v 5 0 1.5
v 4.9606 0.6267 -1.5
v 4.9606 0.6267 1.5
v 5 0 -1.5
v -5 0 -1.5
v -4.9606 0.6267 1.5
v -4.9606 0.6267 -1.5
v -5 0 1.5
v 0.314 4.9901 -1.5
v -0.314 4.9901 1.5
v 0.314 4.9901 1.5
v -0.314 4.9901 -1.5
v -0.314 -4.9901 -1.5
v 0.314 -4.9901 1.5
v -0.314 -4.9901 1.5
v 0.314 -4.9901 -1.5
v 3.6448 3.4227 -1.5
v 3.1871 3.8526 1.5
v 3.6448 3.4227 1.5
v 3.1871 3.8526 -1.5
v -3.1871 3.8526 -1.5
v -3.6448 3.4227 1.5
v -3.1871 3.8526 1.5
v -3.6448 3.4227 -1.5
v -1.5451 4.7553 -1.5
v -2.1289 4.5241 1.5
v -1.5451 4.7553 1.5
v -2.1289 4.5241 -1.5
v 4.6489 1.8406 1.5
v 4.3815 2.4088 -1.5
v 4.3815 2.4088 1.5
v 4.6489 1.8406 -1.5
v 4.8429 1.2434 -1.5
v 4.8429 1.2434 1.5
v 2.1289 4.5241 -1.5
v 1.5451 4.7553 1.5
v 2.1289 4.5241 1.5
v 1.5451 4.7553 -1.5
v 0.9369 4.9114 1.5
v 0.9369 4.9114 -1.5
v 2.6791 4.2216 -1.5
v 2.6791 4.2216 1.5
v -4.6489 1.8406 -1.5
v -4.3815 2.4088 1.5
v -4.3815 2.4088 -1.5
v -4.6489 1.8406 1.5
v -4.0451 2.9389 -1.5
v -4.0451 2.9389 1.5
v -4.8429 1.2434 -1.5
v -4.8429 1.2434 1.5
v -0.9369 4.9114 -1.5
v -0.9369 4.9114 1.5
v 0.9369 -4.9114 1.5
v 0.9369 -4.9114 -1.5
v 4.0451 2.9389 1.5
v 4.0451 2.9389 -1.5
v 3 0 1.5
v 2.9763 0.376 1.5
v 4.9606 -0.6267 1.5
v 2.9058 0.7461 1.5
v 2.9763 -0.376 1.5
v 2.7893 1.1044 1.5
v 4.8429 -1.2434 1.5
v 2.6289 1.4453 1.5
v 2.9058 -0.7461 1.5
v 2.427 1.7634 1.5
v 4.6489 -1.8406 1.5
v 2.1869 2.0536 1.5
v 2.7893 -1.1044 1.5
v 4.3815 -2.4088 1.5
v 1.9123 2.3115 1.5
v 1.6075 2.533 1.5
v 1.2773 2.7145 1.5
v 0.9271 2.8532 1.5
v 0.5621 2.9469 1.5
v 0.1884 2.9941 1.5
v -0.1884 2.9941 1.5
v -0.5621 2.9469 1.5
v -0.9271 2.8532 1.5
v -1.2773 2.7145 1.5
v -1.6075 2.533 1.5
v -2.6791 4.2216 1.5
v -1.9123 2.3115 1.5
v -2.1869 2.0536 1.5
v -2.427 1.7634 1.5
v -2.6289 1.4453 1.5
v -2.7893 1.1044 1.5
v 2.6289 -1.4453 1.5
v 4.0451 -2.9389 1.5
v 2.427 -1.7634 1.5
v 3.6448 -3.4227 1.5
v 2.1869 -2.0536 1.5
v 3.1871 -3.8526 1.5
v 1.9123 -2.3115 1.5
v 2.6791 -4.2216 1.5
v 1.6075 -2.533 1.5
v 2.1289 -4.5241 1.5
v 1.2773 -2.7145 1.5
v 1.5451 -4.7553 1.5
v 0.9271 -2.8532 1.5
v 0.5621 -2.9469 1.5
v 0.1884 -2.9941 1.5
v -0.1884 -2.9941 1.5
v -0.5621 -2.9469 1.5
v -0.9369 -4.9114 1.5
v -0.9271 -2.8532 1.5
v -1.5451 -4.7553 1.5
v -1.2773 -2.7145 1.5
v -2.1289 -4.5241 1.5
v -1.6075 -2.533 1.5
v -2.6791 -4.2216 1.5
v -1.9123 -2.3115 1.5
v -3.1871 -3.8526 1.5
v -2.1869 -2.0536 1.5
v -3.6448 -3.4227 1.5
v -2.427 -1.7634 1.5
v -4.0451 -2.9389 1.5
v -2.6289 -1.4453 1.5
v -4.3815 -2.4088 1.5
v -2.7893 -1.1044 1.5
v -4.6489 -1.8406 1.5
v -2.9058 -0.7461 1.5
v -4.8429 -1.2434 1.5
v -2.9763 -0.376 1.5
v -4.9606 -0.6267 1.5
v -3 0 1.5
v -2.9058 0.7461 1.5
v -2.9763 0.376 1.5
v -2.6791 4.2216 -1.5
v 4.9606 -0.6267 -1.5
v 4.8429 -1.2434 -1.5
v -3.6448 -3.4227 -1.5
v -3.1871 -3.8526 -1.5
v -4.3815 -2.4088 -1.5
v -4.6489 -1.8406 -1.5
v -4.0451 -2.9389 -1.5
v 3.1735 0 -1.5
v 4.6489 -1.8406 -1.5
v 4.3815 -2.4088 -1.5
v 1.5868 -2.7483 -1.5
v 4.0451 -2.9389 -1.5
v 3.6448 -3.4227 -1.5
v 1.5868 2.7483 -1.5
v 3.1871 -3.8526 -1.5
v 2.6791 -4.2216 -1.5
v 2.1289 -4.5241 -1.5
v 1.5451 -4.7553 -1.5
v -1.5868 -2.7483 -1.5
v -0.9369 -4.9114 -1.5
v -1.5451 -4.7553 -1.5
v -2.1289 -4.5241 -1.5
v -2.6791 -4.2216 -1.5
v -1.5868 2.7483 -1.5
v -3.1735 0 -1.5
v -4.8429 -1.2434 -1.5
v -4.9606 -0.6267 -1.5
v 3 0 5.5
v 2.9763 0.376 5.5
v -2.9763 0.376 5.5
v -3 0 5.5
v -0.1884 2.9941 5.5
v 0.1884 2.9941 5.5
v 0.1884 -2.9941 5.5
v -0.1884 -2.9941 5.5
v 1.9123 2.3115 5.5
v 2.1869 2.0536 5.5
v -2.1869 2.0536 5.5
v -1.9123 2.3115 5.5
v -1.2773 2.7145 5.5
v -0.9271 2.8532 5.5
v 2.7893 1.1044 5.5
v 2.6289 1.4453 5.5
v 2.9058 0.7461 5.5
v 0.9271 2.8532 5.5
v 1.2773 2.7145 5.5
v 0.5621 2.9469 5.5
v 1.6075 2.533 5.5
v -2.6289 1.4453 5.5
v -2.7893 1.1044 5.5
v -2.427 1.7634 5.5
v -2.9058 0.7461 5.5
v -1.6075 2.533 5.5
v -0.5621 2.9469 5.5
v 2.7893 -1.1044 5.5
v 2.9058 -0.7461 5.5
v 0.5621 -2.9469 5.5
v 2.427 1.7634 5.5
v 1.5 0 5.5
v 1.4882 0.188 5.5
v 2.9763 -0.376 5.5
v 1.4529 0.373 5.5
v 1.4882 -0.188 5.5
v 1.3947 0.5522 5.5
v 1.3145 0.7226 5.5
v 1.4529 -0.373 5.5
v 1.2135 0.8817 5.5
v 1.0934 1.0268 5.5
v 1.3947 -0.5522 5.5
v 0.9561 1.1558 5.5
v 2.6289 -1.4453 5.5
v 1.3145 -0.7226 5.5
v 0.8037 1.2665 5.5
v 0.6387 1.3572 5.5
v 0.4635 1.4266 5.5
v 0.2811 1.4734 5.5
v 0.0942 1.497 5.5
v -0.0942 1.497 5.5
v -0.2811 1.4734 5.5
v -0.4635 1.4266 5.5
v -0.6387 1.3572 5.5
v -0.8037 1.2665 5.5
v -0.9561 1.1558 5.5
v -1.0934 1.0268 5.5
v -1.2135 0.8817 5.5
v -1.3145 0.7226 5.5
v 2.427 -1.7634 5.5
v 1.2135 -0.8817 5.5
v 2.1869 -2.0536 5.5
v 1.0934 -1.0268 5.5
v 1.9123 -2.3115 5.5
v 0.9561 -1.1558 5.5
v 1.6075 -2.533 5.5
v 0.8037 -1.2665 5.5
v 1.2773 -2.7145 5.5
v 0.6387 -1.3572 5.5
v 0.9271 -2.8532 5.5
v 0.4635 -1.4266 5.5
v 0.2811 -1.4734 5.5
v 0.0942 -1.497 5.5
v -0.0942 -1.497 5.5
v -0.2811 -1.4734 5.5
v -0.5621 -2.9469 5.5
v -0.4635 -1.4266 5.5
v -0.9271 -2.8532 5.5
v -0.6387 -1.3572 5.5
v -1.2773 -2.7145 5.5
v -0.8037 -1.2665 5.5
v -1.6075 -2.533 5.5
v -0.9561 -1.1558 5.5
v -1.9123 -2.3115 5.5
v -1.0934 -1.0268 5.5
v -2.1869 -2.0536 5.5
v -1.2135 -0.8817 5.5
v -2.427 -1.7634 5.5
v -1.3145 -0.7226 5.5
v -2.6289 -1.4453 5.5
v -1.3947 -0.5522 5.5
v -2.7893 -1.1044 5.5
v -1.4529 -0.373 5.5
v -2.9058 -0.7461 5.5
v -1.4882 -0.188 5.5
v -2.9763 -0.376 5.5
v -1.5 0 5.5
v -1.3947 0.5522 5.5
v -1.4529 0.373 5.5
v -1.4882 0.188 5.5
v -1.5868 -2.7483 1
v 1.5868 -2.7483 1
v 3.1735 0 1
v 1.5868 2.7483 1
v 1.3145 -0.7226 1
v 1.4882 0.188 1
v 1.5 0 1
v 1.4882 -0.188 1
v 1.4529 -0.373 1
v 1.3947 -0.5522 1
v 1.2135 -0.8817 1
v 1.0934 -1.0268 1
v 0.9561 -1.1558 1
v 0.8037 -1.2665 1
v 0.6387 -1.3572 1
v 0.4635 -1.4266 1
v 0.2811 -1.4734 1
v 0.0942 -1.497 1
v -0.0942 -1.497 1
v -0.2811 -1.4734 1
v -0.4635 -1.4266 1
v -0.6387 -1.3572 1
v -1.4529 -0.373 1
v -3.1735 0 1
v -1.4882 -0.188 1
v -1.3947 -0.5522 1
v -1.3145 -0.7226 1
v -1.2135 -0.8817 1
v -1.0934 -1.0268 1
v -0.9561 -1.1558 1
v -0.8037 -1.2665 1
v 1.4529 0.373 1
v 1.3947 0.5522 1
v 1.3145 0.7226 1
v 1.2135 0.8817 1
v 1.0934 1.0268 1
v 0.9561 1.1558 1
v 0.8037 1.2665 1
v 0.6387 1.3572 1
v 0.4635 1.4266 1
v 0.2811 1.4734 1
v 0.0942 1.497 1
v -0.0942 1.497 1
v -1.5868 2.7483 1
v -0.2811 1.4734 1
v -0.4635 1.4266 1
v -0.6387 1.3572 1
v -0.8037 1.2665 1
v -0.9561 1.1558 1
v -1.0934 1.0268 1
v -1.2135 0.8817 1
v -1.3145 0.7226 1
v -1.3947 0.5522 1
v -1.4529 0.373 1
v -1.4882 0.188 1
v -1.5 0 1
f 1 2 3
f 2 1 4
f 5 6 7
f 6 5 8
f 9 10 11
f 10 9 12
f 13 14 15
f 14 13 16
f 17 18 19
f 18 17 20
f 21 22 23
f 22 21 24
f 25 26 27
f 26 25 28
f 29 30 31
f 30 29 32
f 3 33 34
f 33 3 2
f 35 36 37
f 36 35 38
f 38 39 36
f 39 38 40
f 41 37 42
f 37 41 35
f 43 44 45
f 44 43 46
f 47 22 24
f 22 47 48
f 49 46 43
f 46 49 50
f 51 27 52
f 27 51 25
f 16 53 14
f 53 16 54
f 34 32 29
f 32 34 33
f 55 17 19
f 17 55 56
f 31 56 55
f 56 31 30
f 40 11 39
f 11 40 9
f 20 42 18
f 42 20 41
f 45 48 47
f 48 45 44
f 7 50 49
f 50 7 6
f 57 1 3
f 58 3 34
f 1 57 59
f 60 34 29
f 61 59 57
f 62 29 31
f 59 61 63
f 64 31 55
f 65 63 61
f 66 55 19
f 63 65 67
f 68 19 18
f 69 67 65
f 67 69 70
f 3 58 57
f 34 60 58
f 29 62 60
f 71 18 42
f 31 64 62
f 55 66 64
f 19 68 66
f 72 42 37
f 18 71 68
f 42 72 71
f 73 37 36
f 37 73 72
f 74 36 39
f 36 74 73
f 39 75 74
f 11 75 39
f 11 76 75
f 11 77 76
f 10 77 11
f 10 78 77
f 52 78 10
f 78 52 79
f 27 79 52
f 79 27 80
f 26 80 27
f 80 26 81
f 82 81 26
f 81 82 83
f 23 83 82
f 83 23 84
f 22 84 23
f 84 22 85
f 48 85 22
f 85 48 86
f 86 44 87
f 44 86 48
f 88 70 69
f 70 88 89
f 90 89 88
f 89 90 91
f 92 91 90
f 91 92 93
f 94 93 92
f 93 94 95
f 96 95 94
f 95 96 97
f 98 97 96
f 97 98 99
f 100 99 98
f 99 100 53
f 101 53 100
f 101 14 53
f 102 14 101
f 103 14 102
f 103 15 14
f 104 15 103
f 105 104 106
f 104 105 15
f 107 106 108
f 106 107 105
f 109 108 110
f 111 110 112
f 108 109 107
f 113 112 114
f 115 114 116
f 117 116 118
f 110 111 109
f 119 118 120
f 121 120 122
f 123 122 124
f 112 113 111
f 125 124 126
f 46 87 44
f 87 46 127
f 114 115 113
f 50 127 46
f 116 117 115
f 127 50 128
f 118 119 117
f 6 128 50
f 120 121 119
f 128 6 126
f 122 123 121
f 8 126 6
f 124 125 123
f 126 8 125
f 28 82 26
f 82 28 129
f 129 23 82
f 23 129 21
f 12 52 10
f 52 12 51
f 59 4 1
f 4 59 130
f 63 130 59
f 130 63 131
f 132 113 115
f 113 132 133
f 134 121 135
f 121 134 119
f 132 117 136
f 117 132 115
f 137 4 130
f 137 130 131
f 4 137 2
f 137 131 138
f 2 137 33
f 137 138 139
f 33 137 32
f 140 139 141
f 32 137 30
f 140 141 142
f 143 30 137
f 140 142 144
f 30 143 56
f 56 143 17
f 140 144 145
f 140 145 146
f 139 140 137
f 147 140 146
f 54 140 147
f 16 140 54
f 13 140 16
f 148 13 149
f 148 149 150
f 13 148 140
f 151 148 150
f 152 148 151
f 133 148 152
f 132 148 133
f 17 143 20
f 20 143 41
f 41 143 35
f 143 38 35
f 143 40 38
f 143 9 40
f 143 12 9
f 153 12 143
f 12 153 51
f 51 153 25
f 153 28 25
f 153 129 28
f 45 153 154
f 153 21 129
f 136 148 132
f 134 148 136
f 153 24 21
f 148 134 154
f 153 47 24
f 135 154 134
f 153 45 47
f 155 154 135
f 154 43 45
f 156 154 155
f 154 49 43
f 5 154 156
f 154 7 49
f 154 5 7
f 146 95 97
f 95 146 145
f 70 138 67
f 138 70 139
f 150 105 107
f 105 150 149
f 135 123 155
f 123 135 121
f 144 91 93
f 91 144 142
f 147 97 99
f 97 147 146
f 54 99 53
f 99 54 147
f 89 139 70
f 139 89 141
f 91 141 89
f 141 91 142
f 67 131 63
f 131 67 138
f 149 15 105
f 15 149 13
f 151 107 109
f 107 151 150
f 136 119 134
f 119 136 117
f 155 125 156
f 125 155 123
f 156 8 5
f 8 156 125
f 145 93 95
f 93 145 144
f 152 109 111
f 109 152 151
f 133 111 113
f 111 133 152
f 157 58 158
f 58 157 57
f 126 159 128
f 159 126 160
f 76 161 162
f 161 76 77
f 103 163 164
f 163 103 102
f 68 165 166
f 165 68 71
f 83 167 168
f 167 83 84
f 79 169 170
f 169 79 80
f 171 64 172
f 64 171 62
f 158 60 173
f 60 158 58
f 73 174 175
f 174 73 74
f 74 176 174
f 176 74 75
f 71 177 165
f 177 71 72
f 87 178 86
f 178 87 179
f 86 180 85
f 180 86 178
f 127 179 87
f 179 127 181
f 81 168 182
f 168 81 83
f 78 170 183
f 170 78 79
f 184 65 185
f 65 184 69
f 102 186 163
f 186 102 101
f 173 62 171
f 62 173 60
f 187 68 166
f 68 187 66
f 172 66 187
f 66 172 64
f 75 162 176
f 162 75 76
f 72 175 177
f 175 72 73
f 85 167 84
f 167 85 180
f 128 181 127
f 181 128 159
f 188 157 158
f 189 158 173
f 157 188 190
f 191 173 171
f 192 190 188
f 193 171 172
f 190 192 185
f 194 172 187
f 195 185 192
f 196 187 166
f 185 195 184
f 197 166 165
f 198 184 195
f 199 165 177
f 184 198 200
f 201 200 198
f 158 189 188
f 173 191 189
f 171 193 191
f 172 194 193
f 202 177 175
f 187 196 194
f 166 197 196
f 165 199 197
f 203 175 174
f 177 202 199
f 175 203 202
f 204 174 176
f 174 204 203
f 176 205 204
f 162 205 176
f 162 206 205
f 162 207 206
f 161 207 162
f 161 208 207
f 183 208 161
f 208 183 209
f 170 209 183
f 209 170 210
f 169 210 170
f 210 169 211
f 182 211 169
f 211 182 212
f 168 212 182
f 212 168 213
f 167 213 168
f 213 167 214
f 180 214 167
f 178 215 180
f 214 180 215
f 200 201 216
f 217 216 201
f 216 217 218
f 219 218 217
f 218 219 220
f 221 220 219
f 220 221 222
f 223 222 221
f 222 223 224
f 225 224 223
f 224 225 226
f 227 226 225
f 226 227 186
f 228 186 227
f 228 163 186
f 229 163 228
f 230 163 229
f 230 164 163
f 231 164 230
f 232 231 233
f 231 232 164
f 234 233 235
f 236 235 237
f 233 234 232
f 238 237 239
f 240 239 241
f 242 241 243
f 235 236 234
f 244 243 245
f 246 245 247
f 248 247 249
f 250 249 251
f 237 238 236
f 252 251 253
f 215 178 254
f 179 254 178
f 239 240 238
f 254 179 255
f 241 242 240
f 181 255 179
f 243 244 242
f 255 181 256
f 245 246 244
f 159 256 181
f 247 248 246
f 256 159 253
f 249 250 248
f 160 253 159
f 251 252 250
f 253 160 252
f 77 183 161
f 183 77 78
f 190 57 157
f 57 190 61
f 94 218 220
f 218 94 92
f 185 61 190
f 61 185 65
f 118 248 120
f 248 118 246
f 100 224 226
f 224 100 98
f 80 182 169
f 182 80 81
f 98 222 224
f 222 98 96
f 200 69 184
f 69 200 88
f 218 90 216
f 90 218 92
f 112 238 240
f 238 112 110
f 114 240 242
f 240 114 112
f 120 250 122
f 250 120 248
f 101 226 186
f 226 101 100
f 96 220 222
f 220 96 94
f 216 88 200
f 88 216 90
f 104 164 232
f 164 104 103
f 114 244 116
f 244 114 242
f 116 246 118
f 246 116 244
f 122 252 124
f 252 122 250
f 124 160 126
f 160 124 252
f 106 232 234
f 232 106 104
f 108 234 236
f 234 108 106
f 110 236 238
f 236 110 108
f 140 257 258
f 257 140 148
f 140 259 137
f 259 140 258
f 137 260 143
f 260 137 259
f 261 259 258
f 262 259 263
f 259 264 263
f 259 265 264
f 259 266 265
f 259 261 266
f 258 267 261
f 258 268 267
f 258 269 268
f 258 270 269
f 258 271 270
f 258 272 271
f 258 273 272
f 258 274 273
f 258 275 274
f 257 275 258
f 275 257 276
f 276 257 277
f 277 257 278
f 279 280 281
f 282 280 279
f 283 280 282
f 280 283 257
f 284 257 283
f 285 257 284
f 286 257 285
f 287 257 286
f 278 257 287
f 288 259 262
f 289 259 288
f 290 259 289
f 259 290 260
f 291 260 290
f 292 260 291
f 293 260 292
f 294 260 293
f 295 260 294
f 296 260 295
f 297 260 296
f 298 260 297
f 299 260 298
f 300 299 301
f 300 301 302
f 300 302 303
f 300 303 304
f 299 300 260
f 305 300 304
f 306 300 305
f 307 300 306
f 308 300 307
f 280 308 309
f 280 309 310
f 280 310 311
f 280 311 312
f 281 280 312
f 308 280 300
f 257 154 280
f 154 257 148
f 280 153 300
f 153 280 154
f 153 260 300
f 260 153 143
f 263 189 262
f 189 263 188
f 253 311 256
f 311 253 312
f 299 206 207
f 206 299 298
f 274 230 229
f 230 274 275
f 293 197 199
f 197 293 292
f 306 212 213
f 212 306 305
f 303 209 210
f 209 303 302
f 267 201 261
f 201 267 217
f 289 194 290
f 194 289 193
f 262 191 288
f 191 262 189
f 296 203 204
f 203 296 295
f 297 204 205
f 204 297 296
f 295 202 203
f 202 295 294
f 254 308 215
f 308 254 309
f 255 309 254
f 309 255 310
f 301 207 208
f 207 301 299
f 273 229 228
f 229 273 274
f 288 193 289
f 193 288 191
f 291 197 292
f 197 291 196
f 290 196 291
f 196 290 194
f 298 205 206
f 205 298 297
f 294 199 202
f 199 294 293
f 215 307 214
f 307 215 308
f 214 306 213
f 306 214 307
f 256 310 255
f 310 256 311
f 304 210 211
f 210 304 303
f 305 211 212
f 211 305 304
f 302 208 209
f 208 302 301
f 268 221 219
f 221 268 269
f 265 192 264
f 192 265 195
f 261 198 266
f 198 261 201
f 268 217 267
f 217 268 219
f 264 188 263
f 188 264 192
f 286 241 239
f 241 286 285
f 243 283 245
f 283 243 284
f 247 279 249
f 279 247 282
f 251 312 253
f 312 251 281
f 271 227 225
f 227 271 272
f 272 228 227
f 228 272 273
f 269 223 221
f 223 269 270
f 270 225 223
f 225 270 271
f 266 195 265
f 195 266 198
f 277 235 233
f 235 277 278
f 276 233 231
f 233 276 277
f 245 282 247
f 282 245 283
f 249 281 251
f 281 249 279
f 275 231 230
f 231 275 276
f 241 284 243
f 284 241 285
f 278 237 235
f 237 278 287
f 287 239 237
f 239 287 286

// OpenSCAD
$fn = 50;


difference() {
	union() {
		translate(v = [0, 0, -1.5000000000]) {
			cylinder(h = 3, r = 5.0000000000);
		}
		translate(v = [0, 0, -1.5000000000]) {
			cylinder(h = 7, r = 3.0000000000);
		}
	}
	union() {
		translate(v = [0, 0, -1.5000000000]) {
			rotate(a = [0, 0, 0]) {
				difference() {
					union() {
						linear_extrude(height = 2.5000000000) {
							polygon(points = [[3.1735000000, 0.0000000000], [1.5867500000, 2.7483316189], [-1.5867500000, 2.7483316189], [-3.1735000000, 0.0000000000], [-1.5867500000, -2.7483316189], [1.5867500000, -2.7483316189]]);
						}
					}
					union();
				}
			}
		}
		translate(v = [0, 0, -50.0000000000]) {
			cylinder(h = 100, r = 1.5000000000);
		}
	}
}
